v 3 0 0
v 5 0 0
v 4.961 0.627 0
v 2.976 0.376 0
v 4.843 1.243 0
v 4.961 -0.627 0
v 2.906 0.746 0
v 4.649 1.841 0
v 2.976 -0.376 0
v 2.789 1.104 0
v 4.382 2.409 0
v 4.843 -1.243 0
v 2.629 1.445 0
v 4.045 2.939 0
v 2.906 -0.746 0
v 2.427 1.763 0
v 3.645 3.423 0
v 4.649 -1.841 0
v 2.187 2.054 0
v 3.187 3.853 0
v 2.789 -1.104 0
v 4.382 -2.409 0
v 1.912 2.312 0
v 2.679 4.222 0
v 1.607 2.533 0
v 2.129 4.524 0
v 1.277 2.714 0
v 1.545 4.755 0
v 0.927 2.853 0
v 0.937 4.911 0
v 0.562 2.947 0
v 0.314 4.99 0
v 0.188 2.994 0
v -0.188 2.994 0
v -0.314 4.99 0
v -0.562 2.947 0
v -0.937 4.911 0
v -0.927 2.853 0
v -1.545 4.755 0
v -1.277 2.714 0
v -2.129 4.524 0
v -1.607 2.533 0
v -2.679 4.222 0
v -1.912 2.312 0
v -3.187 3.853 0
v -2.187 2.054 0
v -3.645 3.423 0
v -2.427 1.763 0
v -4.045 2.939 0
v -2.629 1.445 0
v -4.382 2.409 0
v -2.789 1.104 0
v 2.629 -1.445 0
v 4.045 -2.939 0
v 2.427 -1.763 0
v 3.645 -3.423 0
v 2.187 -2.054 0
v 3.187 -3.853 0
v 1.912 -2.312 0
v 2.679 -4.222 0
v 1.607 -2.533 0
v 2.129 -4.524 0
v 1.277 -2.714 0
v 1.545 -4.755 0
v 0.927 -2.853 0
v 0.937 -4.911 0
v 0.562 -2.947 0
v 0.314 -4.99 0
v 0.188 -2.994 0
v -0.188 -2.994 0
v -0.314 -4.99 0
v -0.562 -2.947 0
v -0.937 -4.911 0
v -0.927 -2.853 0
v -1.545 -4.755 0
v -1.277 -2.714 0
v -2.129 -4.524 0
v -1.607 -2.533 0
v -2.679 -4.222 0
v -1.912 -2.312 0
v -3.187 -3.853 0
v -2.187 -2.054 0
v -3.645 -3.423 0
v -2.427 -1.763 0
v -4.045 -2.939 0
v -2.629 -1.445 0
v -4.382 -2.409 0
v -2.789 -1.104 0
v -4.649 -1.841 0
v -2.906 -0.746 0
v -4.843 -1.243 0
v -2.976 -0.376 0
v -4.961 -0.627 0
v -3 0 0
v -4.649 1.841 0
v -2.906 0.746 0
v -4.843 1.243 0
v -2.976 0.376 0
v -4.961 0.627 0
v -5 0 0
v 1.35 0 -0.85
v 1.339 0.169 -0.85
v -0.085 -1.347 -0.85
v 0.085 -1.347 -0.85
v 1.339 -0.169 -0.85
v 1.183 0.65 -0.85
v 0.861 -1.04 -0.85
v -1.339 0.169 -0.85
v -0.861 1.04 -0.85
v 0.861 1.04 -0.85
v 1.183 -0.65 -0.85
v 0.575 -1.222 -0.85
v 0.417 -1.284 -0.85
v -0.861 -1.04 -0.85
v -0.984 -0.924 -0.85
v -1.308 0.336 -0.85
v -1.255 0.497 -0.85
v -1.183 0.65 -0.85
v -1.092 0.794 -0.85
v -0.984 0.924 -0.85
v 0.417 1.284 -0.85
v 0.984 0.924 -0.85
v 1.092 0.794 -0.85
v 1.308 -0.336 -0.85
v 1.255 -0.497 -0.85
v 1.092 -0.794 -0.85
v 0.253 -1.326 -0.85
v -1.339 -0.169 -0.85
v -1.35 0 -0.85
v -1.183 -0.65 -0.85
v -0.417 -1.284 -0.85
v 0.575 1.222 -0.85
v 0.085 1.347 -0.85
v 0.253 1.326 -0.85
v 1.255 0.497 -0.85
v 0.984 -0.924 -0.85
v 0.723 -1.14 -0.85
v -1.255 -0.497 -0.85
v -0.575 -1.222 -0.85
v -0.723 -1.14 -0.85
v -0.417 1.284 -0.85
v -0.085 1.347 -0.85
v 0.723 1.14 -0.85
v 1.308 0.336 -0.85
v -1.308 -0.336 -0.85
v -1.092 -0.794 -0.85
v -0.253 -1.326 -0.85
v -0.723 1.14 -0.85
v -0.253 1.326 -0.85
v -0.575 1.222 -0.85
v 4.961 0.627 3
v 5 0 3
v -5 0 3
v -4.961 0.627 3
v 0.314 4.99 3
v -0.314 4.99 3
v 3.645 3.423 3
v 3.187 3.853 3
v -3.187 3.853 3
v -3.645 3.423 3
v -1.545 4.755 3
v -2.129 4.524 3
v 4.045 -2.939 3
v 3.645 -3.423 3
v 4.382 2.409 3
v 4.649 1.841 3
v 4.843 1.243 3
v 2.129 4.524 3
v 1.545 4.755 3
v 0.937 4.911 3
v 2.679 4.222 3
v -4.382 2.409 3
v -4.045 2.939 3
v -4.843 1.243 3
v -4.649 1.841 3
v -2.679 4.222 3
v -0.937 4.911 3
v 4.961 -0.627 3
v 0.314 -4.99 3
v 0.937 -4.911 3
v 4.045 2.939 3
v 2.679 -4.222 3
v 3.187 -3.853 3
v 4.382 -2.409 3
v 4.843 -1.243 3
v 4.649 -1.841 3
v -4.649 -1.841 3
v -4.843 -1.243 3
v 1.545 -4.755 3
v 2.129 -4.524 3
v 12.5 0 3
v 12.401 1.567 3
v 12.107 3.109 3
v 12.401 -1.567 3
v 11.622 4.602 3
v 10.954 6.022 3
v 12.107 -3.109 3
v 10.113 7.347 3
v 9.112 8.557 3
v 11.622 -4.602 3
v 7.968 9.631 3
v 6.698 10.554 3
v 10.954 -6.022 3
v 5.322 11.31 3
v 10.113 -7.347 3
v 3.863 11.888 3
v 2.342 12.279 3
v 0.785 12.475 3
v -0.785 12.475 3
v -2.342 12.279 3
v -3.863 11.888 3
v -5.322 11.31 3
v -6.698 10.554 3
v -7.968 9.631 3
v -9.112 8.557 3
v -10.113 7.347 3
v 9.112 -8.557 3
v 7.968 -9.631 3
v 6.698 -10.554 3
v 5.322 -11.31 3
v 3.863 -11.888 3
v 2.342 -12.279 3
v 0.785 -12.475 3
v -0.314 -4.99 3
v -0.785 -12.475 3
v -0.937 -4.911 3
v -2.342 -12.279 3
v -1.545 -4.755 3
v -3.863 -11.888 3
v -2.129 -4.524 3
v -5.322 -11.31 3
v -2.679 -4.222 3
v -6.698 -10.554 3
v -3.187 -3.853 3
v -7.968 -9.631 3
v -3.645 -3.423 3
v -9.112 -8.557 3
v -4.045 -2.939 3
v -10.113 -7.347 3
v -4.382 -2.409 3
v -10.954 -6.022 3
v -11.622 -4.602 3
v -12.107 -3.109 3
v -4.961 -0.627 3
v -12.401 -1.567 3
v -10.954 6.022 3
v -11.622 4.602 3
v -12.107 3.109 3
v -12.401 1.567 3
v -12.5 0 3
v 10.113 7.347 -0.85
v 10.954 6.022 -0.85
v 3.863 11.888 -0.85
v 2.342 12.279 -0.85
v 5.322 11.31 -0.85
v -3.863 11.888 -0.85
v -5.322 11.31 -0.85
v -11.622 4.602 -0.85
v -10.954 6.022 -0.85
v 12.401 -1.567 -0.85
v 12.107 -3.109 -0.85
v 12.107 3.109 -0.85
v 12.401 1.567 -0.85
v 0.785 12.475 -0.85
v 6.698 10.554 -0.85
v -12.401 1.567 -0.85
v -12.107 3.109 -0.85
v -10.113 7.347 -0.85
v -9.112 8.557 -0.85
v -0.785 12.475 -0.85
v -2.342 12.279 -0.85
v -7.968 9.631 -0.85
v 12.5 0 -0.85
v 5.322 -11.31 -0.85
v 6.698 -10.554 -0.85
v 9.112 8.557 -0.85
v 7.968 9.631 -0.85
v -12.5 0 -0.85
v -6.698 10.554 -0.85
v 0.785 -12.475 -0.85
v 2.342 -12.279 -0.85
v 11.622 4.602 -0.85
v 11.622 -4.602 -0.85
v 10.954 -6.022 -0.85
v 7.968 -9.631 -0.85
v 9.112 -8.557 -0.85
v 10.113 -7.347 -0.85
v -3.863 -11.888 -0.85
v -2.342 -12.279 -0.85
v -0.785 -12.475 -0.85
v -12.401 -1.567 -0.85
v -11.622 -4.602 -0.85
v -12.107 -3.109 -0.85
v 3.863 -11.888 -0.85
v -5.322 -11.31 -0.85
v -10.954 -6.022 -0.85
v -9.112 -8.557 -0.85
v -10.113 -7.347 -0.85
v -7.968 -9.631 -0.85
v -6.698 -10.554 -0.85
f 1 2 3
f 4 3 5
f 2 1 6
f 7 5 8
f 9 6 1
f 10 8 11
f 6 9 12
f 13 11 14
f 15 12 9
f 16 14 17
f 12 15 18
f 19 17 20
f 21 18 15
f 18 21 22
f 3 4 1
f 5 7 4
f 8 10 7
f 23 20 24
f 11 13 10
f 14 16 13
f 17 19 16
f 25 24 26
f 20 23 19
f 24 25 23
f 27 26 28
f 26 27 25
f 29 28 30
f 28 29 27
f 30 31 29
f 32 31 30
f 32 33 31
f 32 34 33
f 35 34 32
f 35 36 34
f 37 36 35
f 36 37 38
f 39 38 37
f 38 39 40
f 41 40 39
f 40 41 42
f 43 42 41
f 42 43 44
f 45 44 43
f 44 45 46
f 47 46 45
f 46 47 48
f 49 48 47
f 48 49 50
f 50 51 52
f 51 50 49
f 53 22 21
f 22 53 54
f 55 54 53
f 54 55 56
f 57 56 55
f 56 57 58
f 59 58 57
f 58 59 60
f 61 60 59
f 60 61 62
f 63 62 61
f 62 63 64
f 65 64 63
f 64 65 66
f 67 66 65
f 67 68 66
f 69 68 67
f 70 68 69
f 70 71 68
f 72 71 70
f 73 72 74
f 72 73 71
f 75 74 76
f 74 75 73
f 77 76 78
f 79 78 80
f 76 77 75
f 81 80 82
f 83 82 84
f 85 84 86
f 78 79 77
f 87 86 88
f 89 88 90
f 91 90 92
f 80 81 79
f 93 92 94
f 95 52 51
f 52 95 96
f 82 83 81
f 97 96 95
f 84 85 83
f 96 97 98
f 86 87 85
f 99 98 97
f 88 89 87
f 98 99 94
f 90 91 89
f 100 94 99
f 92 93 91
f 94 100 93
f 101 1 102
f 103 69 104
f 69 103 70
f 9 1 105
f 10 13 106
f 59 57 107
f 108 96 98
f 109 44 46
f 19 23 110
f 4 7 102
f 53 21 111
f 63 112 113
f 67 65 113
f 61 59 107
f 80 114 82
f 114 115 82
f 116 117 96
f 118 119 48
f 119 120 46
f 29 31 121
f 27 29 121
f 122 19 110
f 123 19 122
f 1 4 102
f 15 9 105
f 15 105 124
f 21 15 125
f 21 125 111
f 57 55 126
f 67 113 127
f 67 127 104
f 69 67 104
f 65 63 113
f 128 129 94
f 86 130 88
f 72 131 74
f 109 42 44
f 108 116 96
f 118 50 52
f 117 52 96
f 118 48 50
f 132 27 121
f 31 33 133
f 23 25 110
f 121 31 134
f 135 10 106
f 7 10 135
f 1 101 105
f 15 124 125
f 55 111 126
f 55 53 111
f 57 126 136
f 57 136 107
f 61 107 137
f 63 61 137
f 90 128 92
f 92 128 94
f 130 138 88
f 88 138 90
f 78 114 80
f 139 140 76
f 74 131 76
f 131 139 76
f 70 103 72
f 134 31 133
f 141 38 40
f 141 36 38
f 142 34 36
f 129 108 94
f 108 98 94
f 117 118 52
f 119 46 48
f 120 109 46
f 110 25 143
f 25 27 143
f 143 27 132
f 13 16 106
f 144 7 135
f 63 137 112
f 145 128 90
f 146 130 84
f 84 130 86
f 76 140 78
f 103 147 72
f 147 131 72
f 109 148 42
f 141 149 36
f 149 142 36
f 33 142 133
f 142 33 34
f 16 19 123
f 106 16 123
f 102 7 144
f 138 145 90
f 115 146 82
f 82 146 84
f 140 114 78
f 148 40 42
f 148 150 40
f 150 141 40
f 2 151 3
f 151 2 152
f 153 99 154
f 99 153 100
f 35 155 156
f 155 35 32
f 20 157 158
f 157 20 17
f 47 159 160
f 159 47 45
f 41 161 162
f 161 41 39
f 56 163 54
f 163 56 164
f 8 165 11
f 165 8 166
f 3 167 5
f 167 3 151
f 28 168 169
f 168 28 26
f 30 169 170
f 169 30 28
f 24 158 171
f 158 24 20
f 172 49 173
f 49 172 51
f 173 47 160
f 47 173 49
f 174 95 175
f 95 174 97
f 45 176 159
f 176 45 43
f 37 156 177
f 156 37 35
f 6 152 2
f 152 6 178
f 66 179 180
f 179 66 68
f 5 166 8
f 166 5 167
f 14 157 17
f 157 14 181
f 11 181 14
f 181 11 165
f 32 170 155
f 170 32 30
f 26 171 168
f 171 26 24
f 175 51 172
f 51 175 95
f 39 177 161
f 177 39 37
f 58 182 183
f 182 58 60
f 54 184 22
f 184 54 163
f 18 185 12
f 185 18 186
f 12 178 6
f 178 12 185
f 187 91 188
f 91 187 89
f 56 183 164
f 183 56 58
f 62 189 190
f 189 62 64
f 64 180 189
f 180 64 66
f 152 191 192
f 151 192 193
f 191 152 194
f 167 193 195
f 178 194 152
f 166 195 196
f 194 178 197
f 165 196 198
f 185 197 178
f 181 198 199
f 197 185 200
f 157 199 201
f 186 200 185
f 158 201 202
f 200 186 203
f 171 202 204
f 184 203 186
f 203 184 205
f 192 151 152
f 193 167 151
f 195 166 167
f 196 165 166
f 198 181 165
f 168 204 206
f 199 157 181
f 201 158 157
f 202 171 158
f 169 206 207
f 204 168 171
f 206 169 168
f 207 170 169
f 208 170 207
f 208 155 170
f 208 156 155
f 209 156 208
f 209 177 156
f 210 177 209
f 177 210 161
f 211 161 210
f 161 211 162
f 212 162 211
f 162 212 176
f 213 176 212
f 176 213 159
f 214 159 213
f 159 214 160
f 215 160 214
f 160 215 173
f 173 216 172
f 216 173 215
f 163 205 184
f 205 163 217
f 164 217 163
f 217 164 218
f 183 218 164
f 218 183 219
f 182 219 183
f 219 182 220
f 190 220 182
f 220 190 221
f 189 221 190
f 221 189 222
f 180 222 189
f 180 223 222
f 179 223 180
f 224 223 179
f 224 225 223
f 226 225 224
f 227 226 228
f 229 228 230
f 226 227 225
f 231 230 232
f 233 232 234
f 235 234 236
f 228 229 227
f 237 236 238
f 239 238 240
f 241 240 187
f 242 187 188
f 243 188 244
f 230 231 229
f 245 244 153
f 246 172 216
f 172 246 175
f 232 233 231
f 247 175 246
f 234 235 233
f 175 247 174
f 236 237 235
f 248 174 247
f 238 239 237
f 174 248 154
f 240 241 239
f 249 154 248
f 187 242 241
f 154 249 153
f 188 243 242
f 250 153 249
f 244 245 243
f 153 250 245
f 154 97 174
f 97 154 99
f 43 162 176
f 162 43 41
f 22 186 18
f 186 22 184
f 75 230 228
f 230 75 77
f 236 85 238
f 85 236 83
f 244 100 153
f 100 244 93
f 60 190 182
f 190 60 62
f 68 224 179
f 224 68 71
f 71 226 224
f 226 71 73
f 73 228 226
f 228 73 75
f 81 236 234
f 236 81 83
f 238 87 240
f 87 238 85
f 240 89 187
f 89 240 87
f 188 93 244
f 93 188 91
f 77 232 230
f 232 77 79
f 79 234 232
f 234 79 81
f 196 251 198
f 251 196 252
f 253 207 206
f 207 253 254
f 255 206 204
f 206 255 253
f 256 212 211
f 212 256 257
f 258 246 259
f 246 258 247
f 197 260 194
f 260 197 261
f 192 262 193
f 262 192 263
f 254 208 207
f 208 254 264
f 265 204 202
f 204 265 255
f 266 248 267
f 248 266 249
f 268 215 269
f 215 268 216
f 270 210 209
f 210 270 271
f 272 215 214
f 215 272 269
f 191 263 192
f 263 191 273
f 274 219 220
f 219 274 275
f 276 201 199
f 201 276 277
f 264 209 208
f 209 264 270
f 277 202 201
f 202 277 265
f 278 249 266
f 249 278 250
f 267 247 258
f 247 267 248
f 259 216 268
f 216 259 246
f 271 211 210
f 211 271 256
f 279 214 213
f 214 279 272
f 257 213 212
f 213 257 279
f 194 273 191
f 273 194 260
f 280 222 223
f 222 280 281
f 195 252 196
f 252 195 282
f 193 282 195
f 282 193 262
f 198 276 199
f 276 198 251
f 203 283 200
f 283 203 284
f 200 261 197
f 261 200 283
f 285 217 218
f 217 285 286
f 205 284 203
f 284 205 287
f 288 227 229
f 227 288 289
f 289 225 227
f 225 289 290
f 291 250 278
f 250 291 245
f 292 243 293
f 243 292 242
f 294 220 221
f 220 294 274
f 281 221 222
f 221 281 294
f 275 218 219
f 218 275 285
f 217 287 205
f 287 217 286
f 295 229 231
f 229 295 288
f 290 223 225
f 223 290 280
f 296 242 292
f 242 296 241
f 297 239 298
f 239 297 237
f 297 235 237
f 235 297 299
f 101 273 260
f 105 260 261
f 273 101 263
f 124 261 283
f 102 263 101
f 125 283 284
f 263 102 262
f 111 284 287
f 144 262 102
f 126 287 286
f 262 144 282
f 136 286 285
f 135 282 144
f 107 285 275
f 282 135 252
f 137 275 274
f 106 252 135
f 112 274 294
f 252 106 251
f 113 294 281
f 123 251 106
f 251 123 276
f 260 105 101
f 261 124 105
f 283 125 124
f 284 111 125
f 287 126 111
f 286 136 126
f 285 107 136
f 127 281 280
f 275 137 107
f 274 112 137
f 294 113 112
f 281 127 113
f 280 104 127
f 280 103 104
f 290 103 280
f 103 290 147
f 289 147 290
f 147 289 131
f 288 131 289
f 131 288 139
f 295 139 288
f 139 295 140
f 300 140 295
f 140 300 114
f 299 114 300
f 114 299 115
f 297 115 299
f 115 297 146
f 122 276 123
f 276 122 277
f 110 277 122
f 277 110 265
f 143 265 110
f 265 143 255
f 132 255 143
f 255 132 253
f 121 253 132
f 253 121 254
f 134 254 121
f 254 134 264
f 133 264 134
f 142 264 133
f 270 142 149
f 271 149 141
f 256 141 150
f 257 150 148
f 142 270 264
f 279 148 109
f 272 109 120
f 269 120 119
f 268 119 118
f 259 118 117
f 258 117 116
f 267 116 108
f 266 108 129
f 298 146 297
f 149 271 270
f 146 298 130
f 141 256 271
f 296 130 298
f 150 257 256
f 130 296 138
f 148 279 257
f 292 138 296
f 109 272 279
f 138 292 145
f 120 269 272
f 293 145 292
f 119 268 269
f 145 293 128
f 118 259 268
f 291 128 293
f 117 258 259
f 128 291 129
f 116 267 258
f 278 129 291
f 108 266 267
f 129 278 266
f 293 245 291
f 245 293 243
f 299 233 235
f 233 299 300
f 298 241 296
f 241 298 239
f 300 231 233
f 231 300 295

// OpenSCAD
$fn = 50;

difference() {
	union() {
		translate(v = [0, 0, -0.8500000000000001]) {
			cylinder(h = 3.85, r = 12.5);
		}
	}
	union() {
		translate(v = [0, 0, 0]) {
			rotate(a = [0, 0, 0]) {
				difference() {
					union() {
						translate(v = [0, 0, -3.85]) {
							cylinder(h = 3.85, r = 1.0);
						}
						translate(v = [0, 0, -0.85]) {
							cylinder(h = 0.85, r1 = 1.35, r2 = 3.0);
						}
						translate(v = [0, 0, -3.85]) {
							cylinder(h = 3.85, r = 1.35);
						}
						translate(v = [0, 0, -3.85]) {
							cylinder(h = 3.85, r = 1.0);
						}
					}
					union();
				}
			}
		}
		#cylinder(h = 3, r = 5.0);
	}
}
